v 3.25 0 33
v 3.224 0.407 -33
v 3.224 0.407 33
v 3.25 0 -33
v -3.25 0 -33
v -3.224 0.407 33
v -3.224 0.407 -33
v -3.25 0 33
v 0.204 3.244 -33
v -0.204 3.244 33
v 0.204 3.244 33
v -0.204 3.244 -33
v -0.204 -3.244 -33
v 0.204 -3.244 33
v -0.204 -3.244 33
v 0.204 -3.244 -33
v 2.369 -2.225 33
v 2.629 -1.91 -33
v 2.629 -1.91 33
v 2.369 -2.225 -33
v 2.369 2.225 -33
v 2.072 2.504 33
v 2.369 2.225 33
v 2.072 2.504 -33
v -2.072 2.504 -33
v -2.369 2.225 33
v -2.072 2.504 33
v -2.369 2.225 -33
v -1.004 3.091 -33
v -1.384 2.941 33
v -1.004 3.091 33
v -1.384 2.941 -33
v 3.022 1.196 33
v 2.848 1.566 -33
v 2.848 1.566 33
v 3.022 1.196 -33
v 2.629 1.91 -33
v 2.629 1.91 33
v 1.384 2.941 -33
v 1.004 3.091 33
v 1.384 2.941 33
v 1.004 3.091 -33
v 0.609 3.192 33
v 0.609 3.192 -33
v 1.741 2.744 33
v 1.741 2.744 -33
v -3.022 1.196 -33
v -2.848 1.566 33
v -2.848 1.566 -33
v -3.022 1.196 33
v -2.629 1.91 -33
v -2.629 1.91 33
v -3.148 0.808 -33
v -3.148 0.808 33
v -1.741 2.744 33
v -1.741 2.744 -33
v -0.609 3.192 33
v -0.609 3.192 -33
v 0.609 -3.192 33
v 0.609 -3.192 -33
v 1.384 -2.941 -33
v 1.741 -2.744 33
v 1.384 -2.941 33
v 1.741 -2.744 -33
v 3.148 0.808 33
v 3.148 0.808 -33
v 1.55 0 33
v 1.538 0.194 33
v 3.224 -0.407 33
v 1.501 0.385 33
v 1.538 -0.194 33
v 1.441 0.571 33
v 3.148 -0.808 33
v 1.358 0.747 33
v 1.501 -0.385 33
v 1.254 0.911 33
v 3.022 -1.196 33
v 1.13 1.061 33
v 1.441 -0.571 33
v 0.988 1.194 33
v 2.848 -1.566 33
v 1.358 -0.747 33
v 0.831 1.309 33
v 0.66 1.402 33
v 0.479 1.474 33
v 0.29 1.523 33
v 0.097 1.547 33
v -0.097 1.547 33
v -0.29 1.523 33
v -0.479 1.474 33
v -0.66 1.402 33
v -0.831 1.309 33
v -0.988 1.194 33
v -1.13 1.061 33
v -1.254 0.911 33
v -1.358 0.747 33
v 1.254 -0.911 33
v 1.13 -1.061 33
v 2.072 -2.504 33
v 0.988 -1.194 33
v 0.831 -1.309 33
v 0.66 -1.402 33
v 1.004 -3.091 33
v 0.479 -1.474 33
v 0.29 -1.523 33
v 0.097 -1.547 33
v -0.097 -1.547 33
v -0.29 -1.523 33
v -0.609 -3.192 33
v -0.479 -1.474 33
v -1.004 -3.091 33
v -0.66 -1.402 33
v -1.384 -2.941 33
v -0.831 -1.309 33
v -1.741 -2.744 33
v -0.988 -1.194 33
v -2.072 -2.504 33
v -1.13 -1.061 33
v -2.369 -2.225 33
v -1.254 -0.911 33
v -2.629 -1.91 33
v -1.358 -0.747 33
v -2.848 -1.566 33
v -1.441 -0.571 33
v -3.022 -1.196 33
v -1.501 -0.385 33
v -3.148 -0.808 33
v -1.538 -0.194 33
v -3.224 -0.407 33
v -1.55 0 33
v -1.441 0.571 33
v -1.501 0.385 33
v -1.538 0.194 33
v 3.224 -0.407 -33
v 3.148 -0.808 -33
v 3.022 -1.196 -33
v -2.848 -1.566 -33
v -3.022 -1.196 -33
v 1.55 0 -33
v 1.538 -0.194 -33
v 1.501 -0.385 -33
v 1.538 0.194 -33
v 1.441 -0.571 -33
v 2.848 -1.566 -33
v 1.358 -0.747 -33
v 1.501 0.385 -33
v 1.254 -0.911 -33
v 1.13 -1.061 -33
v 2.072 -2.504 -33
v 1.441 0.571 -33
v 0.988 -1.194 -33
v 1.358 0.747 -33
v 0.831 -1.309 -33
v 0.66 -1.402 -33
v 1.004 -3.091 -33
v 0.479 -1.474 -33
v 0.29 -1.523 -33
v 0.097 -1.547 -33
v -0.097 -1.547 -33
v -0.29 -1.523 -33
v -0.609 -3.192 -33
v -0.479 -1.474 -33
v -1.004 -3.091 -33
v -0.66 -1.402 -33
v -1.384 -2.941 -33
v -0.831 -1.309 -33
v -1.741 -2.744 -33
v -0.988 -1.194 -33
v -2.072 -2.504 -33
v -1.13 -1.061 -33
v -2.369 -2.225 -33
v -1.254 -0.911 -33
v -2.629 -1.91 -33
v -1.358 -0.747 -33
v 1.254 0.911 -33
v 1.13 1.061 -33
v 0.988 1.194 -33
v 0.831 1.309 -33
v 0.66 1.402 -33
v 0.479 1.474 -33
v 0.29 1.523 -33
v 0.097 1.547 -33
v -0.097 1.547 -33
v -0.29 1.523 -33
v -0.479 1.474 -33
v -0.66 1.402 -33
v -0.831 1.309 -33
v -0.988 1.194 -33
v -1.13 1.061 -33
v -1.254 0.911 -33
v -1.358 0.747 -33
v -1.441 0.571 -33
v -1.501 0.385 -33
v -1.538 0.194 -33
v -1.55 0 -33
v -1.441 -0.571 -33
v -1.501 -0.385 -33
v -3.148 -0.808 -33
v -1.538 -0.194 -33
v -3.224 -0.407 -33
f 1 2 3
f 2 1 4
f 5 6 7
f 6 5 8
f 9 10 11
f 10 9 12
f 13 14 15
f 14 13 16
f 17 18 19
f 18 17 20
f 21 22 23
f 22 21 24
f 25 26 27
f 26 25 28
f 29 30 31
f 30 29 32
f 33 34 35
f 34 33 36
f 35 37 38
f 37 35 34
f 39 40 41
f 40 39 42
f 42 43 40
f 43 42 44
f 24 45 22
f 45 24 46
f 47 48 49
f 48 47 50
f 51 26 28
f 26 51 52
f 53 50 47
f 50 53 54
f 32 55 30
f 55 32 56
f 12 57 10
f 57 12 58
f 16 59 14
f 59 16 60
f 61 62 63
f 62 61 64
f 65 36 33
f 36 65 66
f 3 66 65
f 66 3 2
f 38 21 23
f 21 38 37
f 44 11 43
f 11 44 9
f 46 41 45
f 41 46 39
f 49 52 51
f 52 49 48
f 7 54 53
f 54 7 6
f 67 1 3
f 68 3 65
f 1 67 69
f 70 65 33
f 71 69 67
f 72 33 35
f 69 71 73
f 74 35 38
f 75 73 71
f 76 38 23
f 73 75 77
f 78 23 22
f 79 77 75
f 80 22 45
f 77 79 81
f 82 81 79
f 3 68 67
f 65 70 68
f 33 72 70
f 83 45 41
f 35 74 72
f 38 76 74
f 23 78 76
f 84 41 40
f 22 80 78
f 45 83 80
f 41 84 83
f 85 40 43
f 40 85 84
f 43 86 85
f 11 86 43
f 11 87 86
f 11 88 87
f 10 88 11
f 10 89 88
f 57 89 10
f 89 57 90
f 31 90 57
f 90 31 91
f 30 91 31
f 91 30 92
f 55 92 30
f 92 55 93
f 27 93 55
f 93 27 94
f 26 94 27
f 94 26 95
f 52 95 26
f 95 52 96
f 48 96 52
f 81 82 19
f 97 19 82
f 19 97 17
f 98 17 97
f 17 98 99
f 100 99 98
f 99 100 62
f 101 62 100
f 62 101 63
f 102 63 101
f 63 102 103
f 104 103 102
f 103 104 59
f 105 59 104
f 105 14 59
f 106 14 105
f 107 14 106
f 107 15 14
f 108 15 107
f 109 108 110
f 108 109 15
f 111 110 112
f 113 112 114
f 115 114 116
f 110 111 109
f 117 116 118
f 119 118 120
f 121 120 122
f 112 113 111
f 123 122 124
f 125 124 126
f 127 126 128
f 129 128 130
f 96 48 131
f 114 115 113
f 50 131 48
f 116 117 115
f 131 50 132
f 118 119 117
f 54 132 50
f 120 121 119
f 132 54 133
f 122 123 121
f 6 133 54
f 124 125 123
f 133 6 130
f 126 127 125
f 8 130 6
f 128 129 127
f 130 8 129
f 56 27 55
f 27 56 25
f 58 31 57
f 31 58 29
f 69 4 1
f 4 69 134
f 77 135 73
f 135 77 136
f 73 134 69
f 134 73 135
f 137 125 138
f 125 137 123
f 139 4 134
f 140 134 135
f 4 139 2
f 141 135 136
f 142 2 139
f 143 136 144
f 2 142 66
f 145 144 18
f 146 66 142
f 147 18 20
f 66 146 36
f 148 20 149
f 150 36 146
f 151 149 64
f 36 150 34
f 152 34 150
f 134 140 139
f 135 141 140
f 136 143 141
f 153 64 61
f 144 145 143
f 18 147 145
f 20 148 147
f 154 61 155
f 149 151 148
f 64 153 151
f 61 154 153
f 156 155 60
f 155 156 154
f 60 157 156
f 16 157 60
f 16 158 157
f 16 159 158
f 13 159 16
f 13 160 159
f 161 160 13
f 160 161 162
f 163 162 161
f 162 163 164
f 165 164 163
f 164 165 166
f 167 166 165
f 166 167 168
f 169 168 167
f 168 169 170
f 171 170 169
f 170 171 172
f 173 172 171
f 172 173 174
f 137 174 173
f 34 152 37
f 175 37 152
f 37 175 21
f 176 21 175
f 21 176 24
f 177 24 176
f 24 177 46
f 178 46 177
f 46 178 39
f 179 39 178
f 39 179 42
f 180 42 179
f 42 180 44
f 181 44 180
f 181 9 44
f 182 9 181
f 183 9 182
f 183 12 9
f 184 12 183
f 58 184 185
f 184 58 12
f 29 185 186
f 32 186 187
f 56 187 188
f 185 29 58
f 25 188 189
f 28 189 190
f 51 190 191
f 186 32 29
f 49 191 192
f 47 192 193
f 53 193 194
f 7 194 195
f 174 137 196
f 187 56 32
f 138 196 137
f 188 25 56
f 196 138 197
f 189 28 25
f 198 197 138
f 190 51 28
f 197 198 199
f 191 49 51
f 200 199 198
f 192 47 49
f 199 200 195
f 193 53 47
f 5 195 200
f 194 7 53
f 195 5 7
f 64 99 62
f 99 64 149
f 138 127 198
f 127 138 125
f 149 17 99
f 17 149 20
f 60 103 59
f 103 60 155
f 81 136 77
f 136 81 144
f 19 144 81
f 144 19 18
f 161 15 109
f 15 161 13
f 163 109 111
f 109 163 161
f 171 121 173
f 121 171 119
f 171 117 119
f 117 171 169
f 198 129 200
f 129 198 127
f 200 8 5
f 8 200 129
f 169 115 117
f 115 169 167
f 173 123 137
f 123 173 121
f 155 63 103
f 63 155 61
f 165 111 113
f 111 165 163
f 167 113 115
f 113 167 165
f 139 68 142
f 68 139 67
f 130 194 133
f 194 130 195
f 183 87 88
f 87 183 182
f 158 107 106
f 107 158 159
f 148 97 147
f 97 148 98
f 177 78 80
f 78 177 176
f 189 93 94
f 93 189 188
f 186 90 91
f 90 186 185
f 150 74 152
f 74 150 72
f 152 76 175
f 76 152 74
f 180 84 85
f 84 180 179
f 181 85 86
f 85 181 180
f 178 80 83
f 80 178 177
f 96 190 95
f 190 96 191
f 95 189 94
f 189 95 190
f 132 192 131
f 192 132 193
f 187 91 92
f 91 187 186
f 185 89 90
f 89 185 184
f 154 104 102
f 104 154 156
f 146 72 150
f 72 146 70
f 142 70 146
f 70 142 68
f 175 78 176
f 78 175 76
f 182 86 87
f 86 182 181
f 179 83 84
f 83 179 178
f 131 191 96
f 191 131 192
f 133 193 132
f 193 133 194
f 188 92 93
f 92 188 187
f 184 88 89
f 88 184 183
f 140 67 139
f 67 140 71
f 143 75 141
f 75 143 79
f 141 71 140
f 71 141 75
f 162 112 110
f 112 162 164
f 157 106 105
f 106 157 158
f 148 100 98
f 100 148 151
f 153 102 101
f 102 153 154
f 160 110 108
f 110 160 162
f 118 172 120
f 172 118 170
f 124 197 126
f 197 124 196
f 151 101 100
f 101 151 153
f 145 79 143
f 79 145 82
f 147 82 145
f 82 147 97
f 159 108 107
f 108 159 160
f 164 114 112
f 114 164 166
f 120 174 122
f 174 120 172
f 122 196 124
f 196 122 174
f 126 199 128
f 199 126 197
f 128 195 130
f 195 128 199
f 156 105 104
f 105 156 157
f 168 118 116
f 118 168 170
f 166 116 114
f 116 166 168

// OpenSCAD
$fn = 50;


difference() {
	union() {
		translate(v = [0, 0, -33.0000000000]) {
			cylinder(h = 66, r = 3.2500000000);
		}
	}
	union() {
		translate(v = [0, 0, -100.0000000000]) {
			cylinder(h = 200, r = 1.5500000000);
		}
	}
}
